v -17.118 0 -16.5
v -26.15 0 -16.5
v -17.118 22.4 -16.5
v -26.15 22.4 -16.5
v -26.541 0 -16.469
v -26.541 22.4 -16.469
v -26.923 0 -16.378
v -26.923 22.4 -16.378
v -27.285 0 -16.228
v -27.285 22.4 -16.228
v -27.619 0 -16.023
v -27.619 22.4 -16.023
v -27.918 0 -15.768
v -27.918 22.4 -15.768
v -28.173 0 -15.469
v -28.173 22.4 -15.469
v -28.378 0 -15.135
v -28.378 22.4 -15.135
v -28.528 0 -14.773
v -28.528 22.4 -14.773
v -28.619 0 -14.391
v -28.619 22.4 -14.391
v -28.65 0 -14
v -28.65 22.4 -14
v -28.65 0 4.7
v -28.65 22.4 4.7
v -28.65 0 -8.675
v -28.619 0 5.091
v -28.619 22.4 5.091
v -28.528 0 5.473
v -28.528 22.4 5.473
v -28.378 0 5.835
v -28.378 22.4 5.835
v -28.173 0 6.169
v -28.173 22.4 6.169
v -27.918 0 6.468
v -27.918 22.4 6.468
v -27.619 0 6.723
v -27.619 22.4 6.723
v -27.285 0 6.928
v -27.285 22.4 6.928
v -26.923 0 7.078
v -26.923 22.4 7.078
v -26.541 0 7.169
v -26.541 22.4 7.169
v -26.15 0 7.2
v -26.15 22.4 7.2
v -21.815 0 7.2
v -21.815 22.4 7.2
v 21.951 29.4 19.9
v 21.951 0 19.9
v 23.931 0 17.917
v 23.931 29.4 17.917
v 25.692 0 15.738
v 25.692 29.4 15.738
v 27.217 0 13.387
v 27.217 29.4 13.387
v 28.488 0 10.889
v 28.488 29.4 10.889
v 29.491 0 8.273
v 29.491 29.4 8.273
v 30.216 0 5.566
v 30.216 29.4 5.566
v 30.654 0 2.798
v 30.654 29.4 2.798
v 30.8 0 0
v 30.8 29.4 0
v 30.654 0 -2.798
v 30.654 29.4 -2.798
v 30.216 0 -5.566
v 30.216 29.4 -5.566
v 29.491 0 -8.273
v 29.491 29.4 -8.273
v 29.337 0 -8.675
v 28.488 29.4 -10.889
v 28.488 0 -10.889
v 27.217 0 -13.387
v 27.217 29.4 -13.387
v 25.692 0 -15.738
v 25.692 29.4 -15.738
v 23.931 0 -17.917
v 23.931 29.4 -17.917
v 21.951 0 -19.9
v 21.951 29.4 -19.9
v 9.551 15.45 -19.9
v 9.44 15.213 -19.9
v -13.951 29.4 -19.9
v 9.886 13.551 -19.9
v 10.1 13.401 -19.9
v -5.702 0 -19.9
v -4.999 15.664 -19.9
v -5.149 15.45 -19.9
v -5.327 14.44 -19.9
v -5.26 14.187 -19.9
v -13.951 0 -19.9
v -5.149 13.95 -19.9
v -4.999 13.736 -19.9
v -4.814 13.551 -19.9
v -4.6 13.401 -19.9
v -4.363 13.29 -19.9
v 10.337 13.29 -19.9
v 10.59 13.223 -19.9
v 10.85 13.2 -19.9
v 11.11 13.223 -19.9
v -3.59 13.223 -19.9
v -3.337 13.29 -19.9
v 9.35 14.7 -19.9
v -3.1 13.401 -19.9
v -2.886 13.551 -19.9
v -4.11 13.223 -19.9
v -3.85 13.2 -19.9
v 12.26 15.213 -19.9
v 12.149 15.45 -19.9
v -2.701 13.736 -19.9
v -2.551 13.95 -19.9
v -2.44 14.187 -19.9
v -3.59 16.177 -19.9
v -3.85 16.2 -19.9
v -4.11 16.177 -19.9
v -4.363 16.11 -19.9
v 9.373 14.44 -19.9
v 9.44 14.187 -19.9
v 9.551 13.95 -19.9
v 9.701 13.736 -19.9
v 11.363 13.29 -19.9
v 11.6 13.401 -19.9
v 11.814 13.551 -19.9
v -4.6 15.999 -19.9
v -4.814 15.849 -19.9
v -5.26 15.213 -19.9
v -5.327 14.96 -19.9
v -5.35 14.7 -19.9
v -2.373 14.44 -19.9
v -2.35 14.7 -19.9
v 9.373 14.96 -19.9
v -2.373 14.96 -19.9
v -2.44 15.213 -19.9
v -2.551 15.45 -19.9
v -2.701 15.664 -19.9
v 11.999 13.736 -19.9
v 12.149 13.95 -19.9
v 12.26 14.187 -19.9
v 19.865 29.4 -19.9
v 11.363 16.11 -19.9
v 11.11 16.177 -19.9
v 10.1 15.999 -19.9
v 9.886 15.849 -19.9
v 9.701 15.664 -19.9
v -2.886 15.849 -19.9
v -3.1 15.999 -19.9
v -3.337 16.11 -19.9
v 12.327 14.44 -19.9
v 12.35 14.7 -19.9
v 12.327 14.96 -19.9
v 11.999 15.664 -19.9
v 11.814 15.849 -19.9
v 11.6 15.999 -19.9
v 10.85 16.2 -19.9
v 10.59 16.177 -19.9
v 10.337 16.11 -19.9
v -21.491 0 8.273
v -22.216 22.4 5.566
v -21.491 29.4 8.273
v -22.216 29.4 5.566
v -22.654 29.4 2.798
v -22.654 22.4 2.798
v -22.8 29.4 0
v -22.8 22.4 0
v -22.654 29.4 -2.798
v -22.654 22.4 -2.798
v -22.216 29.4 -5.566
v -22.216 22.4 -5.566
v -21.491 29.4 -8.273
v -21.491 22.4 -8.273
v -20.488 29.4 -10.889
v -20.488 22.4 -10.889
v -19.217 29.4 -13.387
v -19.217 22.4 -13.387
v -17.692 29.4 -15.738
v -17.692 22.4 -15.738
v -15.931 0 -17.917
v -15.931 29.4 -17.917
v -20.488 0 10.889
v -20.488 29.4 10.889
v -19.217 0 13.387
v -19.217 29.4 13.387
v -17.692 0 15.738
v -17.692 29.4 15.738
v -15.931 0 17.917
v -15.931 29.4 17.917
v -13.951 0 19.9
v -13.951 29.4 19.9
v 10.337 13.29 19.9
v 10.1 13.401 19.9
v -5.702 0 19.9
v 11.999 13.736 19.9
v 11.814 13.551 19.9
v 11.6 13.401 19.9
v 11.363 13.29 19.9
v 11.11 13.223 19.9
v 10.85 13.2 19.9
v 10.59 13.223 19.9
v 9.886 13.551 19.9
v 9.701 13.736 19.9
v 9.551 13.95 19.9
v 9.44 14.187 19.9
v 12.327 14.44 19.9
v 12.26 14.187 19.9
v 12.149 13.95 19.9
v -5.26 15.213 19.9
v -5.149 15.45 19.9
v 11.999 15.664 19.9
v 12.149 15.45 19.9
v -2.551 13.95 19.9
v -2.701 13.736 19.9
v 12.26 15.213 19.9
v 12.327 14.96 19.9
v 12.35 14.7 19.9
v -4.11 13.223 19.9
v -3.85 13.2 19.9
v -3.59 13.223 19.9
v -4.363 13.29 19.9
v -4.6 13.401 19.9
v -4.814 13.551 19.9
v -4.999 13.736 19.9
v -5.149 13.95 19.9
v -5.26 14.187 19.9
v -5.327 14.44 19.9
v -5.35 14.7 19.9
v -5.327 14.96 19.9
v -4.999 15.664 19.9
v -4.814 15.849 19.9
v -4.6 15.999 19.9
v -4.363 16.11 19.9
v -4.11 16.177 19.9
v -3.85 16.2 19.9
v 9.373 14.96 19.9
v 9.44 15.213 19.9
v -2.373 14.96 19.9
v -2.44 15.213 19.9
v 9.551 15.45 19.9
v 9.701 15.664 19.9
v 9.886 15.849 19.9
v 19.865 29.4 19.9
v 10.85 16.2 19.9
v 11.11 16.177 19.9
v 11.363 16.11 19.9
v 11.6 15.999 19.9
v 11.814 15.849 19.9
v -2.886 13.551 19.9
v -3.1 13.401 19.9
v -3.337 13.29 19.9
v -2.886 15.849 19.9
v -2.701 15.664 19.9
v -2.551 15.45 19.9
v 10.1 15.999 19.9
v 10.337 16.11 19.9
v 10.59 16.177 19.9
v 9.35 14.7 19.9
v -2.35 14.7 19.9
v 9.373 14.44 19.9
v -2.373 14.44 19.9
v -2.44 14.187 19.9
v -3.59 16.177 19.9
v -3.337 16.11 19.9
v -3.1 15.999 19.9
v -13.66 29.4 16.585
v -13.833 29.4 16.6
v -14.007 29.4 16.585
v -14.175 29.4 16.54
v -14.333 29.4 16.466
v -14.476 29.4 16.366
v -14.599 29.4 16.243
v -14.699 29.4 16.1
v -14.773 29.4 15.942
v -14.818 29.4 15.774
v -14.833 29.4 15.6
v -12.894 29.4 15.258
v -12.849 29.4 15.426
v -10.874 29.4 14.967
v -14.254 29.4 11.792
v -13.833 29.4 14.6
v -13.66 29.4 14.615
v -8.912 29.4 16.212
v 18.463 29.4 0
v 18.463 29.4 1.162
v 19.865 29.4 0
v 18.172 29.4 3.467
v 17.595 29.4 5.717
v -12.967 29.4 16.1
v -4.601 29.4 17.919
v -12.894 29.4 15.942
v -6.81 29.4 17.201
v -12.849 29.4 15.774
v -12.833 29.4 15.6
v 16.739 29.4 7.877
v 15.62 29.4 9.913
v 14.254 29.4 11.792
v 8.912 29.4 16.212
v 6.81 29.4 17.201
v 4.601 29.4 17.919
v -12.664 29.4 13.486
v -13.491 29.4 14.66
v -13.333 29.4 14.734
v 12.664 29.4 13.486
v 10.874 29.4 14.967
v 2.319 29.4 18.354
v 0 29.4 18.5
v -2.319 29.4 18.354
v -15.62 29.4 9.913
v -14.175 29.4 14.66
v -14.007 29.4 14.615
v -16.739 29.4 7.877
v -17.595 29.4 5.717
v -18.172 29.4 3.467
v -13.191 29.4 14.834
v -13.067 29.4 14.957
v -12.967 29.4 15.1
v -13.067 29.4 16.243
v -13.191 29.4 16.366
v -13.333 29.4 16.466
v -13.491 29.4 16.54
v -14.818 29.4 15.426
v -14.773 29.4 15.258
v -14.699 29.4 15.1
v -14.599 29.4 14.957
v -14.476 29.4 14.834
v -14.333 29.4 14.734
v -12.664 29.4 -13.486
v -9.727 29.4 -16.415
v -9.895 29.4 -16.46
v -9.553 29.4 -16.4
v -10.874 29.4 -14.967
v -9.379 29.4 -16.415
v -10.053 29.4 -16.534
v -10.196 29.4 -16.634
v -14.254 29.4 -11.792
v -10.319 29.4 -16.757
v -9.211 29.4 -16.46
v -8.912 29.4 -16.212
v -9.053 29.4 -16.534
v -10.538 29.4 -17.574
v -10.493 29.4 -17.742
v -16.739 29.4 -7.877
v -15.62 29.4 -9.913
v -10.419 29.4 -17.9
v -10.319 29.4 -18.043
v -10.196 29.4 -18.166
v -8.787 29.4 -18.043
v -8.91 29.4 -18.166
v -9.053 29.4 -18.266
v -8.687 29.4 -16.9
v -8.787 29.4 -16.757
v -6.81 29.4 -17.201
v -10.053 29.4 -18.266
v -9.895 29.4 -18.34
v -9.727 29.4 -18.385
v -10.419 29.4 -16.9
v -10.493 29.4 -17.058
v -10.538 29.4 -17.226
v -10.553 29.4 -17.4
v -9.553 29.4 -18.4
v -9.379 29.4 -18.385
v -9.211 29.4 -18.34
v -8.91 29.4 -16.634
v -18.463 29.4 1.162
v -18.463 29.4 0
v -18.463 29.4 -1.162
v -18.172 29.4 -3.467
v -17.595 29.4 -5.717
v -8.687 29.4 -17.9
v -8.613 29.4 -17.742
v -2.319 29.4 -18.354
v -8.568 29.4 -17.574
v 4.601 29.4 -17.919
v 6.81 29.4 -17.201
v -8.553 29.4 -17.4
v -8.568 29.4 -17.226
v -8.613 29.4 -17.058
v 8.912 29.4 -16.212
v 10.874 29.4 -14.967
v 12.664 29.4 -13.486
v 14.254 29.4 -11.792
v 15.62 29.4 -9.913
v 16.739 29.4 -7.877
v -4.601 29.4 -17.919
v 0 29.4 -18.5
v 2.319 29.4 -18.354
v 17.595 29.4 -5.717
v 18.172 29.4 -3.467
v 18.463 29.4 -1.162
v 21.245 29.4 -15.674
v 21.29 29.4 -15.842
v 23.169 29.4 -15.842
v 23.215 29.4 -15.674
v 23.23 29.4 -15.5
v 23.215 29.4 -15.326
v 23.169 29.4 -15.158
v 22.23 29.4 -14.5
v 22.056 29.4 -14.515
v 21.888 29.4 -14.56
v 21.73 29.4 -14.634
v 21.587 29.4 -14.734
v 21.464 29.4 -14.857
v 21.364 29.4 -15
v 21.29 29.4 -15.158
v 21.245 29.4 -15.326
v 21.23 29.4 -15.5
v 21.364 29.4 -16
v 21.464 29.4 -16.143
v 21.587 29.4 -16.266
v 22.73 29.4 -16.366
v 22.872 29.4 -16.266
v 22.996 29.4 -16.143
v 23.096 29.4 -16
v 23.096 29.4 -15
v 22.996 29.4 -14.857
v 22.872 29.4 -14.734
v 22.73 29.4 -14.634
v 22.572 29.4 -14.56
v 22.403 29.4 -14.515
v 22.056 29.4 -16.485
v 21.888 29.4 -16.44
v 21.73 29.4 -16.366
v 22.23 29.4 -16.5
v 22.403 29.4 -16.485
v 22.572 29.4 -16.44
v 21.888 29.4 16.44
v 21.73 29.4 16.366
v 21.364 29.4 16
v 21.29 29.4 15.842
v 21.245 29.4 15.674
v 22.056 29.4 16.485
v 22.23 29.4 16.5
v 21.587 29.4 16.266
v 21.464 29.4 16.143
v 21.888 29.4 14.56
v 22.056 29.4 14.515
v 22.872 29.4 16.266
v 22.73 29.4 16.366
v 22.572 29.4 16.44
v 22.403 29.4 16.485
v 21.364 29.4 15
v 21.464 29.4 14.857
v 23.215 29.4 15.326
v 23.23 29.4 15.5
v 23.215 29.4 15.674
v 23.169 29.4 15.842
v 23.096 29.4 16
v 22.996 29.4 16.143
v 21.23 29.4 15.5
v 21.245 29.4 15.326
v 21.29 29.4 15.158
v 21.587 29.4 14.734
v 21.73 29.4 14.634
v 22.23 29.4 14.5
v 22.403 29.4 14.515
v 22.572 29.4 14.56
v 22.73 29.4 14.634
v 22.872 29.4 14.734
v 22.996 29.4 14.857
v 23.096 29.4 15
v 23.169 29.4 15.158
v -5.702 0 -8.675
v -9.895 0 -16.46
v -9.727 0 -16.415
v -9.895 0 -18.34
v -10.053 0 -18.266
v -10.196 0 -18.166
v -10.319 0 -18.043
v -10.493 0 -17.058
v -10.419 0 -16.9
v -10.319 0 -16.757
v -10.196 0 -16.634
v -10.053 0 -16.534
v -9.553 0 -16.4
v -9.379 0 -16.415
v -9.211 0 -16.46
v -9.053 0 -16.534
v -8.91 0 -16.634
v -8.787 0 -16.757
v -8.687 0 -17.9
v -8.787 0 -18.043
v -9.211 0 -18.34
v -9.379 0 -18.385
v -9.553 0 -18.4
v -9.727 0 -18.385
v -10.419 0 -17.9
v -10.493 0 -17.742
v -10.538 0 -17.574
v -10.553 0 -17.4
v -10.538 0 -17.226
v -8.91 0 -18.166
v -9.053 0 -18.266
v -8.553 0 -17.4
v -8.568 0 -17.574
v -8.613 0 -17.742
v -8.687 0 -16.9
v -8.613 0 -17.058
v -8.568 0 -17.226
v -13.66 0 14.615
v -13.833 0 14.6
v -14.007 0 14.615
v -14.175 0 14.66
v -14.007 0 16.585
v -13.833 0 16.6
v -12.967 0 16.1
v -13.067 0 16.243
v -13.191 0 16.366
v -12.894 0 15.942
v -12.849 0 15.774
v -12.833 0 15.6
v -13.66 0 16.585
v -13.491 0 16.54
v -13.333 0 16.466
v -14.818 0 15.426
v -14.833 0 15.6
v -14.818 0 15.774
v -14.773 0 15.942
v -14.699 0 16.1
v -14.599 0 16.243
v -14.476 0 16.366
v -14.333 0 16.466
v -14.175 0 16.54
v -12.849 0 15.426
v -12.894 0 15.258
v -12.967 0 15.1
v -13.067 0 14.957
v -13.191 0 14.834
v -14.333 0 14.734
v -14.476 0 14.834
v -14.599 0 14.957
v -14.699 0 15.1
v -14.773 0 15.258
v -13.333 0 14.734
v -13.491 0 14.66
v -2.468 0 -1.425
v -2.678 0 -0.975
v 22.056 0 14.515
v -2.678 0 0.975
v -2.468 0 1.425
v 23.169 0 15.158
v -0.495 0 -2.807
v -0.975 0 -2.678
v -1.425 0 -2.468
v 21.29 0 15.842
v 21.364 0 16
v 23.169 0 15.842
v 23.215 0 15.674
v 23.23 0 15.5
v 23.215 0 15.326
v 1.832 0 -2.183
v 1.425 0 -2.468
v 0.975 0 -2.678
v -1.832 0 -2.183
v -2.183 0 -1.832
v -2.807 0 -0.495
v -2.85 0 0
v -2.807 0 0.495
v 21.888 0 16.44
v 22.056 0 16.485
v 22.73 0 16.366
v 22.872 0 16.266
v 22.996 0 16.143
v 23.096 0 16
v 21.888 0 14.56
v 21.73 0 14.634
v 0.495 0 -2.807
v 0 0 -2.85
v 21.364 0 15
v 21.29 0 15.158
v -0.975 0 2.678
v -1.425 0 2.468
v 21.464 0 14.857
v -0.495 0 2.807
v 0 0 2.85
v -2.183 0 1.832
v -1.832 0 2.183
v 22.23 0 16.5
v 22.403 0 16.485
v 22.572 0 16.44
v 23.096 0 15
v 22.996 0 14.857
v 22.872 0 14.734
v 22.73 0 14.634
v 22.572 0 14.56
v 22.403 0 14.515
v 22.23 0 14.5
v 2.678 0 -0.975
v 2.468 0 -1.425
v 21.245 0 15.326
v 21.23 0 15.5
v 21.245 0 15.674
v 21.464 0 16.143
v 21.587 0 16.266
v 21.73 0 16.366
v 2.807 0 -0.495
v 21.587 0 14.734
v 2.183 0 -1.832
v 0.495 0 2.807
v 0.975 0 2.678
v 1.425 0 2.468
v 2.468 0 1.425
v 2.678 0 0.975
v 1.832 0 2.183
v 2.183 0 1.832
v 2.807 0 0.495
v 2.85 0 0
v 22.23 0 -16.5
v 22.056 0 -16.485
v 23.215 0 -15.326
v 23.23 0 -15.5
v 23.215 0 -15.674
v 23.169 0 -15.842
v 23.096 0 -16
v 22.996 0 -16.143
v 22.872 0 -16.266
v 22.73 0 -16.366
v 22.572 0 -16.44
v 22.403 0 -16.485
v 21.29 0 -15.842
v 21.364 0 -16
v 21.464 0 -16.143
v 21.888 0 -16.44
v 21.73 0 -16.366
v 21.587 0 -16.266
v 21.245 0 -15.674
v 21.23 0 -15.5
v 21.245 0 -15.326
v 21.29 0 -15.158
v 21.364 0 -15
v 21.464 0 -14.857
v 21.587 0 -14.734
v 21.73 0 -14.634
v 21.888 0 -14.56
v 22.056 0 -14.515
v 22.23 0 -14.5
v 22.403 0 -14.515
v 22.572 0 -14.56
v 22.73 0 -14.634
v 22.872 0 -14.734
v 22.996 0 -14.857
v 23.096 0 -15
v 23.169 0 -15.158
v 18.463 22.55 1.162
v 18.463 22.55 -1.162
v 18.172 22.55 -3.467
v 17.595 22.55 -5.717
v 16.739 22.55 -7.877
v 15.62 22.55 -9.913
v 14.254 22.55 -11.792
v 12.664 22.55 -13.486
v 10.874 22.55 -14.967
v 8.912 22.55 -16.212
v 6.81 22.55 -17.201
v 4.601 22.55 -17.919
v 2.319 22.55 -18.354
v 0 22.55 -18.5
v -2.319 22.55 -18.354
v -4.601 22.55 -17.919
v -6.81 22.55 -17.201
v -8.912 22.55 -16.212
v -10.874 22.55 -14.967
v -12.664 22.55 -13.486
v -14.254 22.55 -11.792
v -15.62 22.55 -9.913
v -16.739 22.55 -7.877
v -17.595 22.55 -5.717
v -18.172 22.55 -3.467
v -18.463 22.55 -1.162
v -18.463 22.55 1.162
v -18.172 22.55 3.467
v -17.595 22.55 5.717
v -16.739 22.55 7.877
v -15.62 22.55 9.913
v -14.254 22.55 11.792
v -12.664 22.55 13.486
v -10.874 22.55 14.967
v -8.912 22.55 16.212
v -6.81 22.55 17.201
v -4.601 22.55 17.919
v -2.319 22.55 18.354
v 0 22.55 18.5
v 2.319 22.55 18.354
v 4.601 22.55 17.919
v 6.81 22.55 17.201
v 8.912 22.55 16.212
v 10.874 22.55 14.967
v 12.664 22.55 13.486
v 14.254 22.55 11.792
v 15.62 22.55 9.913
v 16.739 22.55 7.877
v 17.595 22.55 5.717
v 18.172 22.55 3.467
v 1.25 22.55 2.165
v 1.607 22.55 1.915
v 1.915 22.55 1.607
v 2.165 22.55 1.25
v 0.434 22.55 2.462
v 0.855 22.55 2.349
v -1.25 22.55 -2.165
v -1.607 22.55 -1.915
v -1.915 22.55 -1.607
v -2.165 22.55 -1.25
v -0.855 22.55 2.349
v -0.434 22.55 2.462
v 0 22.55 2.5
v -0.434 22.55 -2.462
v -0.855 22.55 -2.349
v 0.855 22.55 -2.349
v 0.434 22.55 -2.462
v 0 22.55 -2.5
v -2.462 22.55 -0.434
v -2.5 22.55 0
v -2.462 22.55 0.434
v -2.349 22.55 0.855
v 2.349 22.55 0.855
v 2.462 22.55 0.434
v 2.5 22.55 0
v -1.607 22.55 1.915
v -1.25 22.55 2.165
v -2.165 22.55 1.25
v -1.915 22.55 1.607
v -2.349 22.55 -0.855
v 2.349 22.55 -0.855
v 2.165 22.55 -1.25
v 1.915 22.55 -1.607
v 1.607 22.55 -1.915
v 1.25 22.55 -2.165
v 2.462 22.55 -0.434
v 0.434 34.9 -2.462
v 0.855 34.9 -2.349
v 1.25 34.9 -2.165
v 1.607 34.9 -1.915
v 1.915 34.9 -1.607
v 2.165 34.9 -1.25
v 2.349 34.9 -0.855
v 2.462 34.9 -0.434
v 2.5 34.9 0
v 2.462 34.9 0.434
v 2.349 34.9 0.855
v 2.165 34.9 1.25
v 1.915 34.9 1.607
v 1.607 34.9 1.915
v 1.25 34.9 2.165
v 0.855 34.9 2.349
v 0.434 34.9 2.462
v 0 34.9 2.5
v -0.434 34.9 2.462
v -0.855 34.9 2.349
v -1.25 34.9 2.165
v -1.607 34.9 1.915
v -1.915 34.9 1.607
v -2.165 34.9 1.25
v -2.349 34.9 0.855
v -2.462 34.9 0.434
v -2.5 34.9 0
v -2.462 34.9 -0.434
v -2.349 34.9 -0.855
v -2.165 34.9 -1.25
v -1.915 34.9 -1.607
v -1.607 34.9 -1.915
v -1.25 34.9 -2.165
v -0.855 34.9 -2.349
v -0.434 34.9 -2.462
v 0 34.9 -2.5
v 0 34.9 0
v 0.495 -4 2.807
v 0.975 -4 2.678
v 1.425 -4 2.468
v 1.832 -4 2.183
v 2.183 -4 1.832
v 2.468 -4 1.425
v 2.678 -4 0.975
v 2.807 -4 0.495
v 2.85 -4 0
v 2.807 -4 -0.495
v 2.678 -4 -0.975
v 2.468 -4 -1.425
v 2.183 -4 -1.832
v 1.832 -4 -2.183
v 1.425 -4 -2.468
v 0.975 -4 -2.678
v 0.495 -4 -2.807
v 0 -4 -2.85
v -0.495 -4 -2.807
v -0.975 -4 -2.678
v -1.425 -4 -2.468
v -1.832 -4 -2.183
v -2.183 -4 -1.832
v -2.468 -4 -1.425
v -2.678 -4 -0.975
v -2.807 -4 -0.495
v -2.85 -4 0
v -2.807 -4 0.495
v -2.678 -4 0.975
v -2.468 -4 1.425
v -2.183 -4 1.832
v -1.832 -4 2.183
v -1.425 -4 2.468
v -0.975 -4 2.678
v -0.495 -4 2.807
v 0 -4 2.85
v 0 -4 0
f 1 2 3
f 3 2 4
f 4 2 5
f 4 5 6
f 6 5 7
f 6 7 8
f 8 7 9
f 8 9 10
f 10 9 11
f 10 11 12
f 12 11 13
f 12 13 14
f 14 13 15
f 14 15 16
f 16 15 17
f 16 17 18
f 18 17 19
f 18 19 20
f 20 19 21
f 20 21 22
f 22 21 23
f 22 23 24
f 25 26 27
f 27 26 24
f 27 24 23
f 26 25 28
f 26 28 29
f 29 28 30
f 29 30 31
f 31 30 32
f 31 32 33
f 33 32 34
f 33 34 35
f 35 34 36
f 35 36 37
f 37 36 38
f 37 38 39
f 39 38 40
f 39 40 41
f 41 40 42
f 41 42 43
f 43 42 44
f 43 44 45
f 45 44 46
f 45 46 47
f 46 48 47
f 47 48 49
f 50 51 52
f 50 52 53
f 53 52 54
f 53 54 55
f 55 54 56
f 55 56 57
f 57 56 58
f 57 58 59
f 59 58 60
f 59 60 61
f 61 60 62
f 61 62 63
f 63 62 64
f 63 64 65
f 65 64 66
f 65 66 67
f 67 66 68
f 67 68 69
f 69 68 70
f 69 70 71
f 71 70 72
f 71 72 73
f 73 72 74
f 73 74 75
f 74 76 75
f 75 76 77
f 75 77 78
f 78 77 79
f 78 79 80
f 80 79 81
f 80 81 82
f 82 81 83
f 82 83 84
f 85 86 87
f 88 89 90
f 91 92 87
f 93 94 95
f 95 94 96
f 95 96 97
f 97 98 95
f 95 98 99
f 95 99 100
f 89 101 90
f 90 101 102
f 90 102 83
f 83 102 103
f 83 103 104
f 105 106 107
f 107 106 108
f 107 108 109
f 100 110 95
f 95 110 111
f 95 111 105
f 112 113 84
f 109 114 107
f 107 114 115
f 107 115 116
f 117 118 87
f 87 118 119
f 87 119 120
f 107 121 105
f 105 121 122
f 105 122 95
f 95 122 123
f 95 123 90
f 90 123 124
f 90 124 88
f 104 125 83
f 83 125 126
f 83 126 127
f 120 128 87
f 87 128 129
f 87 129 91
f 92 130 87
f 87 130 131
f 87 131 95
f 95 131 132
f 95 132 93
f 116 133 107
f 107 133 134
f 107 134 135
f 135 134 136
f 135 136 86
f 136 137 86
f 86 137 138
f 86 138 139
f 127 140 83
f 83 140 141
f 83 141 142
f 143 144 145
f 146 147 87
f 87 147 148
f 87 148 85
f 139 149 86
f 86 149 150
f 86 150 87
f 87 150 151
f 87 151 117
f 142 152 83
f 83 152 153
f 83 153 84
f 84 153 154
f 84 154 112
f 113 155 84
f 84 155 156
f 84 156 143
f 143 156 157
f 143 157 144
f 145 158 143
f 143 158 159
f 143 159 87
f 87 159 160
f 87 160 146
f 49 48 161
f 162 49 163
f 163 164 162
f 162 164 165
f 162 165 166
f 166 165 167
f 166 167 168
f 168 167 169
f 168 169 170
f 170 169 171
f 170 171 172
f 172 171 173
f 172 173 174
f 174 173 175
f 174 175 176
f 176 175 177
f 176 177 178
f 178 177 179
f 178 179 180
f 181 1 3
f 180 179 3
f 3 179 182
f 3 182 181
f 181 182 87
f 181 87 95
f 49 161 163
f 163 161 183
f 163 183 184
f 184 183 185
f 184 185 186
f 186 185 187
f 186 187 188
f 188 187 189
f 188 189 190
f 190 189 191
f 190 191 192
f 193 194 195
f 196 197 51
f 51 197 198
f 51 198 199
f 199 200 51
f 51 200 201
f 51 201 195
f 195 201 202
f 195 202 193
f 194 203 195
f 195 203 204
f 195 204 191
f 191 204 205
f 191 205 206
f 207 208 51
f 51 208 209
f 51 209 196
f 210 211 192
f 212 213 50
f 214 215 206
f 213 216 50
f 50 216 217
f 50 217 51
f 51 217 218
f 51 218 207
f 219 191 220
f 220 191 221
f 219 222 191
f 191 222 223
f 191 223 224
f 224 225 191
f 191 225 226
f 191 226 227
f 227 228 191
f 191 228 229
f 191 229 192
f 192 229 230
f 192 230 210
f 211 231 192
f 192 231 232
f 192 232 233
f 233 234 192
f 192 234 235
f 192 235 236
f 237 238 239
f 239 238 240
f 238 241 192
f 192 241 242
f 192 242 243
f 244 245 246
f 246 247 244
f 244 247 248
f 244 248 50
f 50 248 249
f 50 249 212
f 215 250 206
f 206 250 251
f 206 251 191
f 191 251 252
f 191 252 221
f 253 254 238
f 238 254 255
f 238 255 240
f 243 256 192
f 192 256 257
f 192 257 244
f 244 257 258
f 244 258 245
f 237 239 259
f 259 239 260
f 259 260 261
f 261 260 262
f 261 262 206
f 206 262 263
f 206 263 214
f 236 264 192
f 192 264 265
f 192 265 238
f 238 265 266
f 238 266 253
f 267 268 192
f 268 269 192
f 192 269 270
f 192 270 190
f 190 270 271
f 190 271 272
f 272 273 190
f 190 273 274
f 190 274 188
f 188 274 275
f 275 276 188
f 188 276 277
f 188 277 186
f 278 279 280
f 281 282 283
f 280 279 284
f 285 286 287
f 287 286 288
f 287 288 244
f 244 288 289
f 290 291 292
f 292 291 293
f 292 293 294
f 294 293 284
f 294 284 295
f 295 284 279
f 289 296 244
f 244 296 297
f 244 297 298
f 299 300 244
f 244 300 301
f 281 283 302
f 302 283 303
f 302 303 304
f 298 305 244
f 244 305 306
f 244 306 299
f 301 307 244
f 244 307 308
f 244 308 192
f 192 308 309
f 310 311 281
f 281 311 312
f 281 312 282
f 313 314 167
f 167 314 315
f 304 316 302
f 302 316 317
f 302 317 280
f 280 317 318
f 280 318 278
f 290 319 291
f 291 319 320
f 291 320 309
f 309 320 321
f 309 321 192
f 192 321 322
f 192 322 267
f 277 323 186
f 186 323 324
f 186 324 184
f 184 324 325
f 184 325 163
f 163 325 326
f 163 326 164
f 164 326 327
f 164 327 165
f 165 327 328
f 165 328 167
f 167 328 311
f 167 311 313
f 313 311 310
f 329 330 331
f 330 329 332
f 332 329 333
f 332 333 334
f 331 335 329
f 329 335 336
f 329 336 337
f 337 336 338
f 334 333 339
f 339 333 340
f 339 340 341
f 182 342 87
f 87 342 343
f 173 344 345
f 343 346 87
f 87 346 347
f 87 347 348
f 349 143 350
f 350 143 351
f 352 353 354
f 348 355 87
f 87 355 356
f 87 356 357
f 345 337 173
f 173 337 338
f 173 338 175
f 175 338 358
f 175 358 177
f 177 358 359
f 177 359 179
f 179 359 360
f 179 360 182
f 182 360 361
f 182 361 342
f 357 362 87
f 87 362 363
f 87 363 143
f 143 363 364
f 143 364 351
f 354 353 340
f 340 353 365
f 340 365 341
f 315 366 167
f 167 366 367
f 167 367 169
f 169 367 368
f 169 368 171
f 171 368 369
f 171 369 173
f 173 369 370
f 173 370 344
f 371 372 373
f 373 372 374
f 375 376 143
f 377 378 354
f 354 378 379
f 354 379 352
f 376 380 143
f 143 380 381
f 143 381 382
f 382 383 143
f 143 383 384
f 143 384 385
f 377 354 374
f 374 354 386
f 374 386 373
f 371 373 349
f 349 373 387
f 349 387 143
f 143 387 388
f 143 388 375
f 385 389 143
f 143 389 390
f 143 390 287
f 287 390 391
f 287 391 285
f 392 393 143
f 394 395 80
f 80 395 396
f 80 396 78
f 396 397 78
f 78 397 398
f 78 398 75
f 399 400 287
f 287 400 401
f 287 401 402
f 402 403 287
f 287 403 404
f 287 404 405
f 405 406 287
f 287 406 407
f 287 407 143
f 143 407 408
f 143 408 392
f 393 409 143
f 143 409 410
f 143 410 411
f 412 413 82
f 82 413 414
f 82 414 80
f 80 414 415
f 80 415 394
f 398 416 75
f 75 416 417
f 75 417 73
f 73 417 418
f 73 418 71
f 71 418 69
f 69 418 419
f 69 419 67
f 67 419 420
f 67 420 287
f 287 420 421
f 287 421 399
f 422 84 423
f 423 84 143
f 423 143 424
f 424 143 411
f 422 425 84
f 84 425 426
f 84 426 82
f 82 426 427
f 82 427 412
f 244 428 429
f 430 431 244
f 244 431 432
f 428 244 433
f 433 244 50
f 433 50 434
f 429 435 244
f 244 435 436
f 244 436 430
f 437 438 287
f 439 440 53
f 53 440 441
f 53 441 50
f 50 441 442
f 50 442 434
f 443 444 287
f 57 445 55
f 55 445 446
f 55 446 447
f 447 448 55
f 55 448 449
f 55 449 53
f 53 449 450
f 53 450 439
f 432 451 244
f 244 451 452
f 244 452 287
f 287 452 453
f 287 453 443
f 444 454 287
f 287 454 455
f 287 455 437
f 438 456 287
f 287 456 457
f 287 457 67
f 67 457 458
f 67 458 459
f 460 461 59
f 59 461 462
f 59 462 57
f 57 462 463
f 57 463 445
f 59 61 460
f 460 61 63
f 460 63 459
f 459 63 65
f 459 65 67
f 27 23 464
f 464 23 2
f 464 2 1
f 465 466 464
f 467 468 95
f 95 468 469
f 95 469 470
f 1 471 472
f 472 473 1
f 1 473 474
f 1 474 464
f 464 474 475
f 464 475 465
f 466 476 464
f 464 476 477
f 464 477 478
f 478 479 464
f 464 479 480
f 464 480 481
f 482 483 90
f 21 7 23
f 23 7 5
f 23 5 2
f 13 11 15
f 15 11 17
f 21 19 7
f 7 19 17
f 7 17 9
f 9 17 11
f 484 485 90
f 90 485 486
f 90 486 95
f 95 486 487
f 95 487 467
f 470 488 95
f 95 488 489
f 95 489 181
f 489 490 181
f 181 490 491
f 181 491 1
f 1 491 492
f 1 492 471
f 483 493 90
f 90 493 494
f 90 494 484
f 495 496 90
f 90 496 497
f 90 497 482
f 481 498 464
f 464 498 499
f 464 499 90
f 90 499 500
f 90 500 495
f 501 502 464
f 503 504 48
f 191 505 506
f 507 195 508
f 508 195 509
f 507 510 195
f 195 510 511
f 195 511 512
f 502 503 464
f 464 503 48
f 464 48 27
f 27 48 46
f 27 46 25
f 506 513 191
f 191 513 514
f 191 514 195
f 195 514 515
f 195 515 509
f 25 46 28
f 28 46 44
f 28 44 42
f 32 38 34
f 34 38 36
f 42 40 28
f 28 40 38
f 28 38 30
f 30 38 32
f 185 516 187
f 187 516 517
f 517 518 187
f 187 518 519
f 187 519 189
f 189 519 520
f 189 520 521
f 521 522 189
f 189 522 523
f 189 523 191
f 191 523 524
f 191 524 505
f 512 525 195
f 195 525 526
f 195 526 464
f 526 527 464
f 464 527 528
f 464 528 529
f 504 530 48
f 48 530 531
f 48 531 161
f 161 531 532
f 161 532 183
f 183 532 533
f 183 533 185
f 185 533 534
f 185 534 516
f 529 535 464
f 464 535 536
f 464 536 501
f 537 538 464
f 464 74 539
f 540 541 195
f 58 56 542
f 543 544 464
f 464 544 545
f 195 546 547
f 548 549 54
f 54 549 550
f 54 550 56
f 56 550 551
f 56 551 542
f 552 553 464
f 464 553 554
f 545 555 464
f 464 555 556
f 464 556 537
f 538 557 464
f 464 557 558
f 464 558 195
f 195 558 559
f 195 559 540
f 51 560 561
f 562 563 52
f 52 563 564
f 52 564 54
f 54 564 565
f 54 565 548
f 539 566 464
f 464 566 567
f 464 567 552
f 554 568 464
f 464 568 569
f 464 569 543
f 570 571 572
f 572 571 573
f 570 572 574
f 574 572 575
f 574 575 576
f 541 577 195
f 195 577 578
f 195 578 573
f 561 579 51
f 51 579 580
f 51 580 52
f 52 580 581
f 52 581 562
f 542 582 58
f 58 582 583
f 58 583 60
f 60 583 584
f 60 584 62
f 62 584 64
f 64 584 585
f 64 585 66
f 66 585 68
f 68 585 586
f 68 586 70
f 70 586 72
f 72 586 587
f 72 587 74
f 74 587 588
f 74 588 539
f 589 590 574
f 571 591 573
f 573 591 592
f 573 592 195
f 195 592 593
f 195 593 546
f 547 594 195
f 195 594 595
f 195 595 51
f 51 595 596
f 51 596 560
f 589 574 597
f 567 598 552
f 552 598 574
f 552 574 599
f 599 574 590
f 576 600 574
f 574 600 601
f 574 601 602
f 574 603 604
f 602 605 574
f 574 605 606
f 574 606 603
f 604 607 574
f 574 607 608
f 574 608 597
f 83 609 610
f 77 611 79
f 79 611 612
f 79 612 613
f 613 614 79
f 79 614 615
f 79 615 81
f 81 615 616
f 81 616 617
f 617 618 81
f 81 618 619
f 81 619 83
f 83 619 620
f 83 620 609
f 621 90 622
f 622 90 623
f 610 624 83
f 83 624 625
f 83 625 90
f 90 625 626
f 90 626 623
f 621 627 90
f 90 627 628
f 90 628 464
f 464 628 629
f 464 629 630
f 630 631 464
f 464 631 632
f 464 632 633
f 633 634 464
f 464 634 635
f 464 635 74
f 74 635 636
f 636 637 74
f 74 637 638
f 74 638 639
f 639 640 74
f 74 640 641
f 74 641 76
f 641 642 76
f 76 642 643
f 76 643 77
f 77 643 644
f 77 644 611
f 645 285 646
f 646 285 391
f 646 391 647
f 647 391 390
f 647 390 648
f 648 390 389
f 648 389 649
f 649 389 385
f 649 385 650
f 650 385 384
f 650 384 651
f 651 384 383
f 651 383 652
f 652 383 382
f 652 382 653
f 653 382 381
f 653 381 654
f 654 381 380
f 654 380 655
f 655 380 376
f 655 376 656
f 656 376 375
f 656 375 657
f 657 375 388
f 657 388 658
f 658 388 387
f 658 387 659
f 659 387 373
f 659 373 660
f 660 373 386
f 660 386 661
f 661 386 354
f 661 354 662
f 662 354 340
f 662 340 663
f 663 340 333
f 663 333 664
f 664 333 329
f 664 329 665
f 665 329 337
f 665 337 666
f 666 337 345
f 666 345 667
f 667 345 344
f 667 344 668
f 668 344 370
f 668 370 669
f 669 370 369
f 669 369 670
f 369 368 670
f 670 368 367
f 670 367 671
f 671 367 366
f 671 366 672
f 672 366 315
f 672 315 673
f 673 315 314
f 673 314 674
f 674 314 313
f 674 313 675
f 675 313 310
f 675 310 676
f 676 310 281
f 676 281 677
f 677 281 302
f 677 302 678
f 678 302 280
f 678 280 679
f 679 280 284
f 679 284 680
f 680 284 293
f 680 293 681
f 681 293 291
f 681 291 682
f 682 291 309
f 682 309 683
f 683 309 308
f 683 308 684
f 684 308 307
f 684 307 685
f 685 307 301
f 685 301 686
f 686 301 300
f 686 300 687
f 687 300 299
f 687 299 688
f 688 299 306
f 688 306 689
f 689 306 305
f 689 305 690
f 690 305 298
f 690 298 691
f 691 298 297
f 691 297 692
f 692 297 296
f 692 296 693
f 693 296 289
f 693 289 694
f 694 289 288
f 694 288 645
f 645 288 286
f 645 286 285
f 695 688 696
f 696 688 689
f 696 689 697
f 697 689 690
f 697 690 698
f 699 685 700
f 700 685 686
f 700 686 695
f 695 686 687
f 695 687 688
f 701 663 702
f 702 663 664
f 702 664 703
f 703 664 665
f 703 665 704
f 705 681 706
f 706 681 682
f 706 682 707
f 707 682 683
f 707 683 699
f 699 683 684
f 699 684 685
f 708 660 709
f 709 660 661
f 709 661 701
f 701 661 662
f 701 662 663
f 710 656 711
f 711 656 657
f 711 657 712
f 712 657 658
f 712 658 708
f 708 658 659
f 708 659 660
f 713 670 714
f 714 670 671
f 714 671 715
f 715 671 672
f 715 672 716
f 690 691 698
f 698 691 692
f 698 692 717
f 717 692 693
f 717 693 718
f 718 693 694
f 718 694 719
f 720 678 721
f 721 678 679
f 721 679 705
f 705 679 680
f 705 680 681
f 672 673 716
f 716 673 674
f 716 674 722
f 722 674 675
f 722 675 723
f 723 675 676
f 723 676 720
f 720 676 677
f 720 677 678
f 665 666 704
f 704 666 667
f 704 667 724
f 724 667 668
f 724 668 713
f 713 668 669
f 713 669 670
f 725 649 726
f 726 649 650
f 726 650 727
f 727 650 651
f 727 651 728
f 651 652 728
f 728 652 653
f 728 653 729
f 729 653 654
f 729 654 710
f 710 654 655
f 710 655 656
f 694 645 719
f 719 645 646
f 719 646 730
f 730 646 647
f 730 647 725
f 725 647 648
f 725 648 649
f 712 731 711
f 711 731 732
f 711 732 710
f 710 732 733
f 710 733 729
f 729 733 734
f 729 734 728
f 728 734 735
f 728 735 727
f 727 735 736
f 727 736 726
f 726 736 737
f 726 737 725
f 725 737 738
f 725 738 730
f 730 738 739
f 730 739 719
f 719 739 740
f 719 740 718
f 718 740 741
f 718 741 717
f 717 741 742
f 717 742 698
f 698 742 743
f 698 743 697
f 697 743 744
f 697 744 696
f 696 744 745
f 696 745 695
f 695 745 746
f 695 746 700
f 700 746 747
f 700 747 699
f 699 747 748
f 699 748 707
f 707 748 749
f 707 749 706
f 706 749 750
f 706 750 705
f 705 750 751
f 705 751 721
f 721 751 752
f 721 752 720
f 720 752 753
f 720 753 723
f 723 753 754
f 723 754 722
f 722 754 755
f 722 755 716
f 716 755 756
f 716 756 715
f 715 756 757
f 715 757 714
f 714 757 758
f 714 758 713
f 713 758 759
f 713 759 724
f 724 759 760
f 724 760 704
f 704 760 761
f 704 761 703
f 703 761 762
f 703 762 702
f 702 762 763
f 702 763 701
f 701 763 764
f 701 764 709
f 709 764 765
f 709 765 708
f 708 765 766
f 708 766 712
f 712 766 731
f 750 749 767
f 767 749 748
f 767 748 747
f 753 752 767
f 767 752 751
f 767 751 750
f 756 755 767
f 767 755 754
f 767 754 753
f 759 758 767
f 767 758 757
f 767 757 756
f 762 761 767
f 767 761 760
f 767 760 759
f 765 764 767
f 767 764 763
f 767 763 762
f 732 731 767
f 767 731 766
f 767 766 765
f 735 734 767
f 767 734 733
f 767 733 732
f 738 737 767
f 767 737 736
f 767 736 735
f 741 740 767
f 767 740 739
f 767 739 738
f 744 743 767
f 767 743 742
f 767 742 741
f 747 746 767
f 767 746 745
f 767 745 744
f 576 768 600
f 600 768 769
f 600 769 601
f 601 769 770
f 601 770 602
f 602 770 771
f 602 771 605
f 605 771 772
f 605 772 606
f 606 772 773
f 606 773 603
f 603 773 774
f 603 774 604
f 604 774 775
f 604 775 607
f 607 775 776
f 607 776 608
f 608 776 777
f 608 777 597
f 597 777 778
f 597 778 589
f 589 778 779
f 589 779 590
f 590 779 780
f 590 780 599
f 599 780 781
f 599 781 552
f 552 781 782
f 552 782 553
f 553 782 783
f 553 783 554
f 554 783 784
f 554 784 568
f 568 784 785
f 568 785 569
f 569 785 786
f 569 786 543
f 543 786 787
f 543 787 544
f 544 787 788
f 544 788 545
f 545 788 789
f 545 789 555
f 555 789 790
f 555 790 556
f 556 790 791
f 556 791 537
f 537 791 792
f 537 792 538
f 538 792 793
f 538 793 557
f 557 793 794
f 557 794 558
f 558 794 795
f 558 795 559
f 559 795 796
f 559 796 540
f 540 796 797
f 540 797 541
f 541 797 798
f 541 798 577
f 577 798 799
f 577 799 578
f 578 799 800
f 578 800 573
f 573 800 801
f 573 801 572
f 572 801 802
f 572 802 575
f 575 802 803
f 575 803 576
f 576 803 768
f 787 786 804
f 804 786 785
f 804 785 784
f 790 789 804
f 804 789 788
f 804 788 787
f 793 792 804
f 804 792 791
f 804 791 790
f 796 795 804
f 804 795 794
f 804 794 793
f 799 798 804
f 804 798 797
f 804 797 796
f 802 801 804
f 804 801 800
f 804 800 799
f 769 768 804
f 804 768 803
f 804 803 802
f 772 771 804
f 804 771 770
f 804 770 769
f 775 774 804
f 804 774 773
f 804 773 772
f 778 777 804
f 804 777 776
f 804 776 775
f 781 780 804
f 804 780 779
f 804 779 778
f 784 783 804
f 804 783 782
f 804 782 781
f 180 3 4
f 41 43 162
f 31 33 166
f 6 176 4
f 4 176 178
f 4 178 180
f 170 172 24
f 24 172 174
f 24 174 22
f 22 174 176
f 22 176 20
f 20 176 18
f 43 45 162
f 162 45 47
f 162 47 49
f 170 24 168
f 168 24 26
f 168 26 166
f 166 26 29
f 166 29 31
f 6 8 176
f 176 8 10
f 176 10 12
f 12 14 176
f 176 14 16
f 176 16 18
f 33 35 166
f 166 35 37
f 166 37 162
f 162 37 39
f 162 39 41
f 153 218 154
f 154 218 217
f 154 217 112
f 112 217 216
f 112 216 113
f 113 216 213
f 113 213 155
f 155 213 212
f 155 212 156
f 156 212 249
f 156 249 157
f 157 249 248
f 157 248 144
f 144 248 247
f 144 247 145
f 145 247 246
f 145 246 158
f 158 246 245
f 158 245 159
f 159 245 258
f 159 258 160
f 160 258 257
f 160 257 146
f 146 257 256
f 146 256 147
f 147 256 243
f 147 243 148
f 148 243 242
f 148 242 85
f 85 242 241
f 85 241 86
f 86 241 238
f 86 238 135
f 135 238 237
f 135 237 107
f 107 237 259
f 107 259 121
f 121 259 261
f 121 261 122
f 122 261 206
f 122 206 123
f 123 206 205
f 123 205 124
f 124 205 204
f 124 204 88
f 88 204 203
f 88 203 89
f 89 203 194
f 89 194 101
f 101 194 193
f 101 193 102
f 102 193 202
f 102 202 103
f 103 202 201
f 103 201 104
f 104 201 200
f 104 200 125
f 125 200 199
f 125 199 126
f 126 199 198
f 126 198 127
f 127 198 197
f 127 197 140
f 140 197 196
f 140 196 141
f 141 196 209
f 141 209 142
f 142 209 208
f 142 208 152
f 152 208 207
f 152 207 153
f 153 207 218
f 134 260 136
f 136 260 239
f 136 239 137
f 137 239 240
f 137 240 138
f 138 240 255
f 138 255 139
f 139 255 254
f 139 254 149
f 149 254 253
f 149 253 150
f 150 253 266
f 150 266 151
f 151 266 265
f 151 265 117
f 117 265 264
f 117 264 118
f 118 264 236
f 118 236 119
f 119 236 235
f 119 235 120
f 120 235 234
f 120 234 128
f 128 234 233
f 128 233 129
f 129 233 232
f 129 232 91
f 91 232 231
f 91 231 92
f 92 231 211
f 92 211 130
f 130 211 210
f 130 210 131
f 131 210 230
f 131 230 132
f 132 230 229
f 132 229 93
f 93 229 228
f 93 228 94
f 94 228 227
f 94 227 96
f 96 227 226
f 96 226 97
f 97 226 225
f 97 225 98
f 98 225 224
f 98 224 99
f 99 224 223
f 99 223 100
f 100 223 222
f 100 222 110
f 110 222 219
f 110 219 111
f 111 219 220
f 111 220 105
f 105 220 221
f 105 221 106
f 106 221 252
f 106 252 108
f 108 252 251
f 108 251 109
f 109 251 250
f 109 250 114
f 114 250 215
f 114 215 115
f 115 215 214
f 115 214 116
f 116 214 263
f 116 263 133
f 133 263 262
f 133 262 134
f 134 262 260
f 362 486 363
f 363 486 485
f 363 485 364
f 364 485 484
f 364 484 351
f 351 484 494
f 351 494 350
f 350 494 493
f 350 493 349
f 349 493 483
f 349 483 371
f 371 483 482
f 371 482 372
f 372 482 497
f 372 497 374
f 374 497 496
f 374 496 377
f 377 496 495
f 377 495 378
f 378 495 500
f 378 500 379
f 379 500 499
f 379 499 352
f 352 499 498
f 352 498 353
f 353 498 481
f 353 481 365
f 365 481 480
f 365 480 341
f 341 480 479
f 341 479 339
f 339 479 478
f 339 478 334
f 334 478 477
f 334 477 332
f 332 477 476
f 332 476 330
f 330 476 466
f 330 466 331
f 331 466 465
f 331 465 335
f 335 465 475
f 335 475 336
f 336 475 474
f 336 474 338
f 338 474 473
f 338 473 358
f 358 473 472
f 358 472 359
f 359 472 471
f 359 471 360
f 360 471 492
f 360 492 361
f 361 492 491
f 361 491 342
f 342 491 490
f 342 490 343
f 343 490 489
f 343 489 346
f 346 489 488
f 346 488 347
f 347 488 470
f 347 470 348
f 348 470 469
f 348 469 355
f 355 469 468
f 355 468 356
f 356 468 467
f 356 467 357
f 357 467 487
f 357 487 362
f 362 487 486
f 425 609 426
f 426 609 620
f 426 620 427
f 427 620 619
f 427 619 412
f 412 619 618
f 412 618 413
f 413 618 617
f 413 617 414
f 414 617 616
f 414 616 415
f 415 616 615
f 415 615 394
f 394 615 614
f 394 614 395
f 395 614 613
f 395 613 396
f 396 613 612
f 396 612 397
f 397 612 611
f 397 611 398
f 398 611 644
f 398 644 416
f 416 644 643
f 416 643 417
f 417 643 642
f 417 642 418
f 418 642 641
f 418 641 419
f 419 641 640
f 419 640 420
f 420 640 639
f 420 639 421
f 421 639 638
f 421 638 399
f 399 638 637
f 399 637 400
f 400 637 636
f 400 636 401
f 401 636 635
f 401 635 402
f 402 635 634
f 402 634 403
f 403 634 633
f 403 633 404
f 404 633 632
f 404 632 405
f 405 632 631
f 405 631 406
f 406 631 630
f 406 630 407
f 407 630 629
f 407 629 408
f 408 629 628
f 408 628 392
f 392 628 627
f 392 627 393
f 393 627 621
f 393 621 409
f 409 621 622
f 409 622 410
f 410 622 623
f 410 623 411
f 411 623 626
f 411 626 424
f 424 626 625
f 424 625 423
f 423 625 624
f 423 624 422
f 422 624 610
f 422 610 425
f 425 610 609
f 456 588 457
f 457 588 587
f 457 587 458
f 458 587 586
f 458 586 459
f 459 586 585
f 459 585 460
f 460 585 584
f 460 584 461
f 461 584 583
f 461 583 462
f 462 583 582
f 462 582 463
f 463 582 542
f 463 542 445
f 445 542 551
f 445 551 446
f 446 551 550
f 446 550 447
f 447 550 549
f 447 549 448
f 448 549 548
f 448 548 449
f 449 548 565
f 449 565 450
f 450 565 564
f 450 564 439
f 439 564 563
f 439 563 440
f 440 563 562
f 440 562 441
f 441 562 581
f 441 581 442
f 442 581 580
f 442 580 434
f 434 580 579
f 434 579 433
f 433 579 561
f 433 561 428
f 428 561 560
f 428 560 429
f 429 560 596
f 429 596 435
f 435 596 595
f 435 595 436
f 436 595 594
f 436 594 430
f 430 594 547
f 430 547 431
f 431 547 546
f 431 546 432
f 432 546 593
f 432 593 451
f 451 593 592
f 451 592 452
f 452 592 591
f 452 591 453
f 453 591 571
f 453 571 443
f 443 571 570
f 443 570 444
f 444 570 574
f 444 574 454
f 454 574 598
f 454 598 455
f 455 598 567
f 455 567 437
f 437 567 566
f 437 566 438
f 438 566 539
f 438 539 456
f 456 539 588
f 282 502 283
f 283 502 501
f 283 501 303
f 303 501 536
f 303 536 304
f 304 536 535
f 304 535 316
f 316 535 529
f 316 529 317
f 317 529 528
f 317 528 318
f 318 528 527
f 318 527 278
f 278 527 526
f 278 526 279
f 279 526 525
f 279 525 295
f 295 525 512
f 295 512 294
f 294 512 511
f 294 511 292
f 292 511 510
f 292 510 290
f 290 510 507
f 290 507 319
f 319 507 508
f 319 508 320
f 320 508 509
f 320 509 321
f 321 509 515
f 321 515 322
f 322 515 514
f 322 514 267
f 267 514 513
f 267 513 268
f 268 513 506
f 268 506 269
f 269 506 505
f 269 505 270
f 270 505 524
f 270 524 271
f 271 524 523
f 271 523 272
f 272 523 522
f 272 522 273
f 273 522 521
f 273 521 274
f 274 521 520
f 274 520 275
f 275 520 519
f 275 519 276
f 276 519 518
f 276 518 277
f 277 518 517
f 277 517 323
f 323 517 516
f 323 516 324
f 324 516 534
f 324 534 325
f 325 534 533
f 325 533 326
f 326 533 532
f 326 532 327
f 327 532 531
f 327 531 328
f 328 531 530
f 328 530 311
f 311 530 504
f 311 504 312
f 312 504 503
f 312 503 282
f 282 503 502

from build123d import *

# Parameters (mm, degrees)
BOSS_EXTRUDE1_DEPTH = 29.4
SKETCH2_R           = 18.5
CUT_EXTRUDE1_DEPTH  = 6.85
SKETCH3_R           = 2.5
BOSS_EXTRUDE2_DEPTH = 12.35
SKETCH4_R           = 2.85
BOSS_EXTRUDE3_DEPTH = 4
CUT_EXTRUDE3_DEPTH  = 7
SKETCH6_R           = 1.5
CUT_EXTRUDE4_DEPTH  = 40.8
SKETCH7_R           = 1
CUT_EXTRUDE5_DEPTH  = 35.9


with BuildPart() as part:
    # Sketch1 → Boss-Extrude1 (new body)
    with BuildSketch(Plane(origin=(0, 0, 0), x_dir=(1, 0, 0), z_dir=(0, 1, 0))):
        with BuildLine():
            Line((-13.950766, 19.9), (21.950766, 19.9))
            ThreePointArc((21.950766, 19.9), (30.8, 0), (21.950766, -19.9))
            Line((21.950766, -19.9), (-13.950766, -19.9))
            ThreePointArc((-13.950766, -19.9), (-18.785456749, -14.108967388), (-21.81472448, -7.2))
            Line((-21.81472448, -7.2), (-26.15, -7.2))
            ThreePointArc((-26.15, -7.2), (-27.917766953, -6.467766953), (-28.65, -4.7))
            Line((-28.65, -4.7), (-28.65, 14))
            ThreePointArc((-28.65, 14), (-27.917766953, 15.767766953), (-26.15, 16.5))
            Line((-26.15, 16.5), (-17.118475324, 16.5))
            ThreePointArc((-17.118475324, 16.5), (-15.608452372, 18.268787469), (-13.950766, 19.9))
        make_face()
    extrude(amount=BOSS_EXTRUDE1_DEPTH)

    # Sketch2 → Cut-Extrude1 (cut)
    with BuildSketch(Plane(origin=(0, 29.4, 0), x_dir=(1, 0, 0), z_dir=(0, 1, 0))):
        Circle(SKETCH2_R)
    extrude(amount=-CUT_EXTRUDE1_DEPTH, mode=Mode.SUBTRACT)

    # Sketch3 → Boss-Extrude2 (add)
    with BuildSketch(Plane(origin=(0, 22.55, 0), x_dir=(1, 0, 0), z_dir=(0, 1, 0))):
        Circle(SKETCH3_R)
    extrude(amount=BOSS_EXTRUDE2_DEPTH)

    # Sketch4 → Boss-Extrude3 (add)
    with BuildSketch(Plane.XZ):
        Circle(SKETCH4_R)
    extrude(amount=BOSS_EXTRUDE3_DEPTH)

    # Sketch5 → Cut-Extrude3 (cut)
    with BuildSketch(Plane(origin=(0, 29.4, 0), x_dir=(1, 0, 0), z_dir=(0, 1, 0))):
        with BuildLine():
            Line((-29.993194127, 17.400116254), (-16.38322728, 17.400116254))
            ThreePointArc((-16.38322728, 17.400116254), (-22.242311501, 5.438849795), (-21.619709811, -7.86577836))
            Line((-21.619709811, -7.86577836), (-29.993194127, -7.86577836))
            Line((-29.993194127, -7.86577836), (-29.993194127, 17.400116254))
        make_face()
    extrude(amount=-CUT_EXTRUDE3_DEPTH, mode=Mode.SUBTRACT)

    # Sketch6 → Cut-Extrude4 (cut, through all)
    with BuildSketch(Plane.XY.offset(19.9)):
        with Locations((-3.85, 14.7)):
            Circle(SKETCH6_R)
        with Locations((10.85, 14.7)):
            Circle(SKETCH6_R)
    extrude(amount=-CUT_EXTRUDE4_DEPTH, mode=Mode.SUBTRACT)

    # Sketch7 → Cut-Extrude5 (cut, through all)
    with BuildSketch(Plane.XZ):
        with Locations((-13.833383534, 15.6)):
            Circle(SKETCH7_R)
        with Locations((22.22970985, 15.5)):
            Circle(SKETCH7_R)
        with Locations((22.22970985, -15.5)):
            Circle(SKETCH7_R)
        with Locations((-9.553140845, -17.4)):
            Circle(SKETCH7_R)
    extrude(amount=-CUT_EXTRUDE5_DEPTH, mode=Mode.SUBTRACT)


solid = part.part
